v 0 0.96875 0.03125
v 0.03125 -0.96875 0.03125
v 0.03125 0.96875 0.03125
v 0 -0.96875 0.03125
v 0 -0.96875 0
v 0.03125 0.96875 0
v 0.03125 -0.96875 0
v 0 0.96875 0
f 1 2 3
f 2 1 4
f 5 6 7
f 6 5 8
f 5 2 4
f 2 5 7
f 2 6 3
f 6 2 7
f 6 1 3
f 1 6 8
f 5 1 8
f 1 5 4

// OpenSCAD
// file: ../colors.scad
// colors.scad
// Credit: David Powell, OpenSCAN Forum



//group ABS_<colorname>
//	discription  common 3d printer ABS filament colors
// actual colours may need some tweaking

ABS_Nature =[0.8,0.8,0.8,0.8];
ABS_White =[0.9,0.9,0.9,1];
ABS_Black =[0.1,0.1,0.1,1];
ABS_Red = [0.7,0,0,1];
ABS_Green = [0,0.7,0,1];
ABS_Blue = [0,0,0.7,1];
ABS_Orange =[0.8,0.4,0,1];
ABS_Purple =[0.7,0,0.7,1];
ABS_Brown =[0.6,0.2,0.2,1];
ABS_Glow_Blue =[0,0,.99,1];
ABS_Flurescence_Green =[0,1,0,1];
ABS_Flurescence_Yellow = [0.9,0.9,0,1];

//group PLA_<colorname>
//	discription  common 3d printer PLA filament colors
// actual colours may need some tweaking

PLA_Nature =[0.8,0.8,0.8,0.8];
PLA_White =[0.9,0.9,0.9,1];
PLA_Black =[0.1,0.1,0.1,1];
PLA_Red = [0.7,0,0,1];
PLA_Green = [0,0.7,0,1];
PLA_Blue = [0,0,0.7,1];
PLA_Orange =[0.8,0.4,0,1];
PLA_Purple =[0.7,0,0.7,1];
PLA_Brown =[0.6,0.2,0.2,1];
PLA_Glow_Blue =[0,0,.99,1];
PLA_Flurescence_Green =[0,1,0,1];
PLA_Flurescence_Yellow = [0.9,0.9,0,1];

//group ANODIZED_<colorname>
//	discription  common aluminium anodized colors
// these don't seem to follow normal color tables as the process
// produces a color change difference to the named color
// dew to base metal
// actual colours may need some tweaking

ANODIZED_Red =[0.7,0,0,1];
ANODIZED_Gold =[0.8,0.8,0.0,1];
ANODIZED_Black =[0.1,0.1,0.1,1];
ANODIZED_Blue =[0,0,0.7,1];
ANODIZED_Green =[0,0.5,0,1];
ANODIZED_Gray =[0.4,0.4,0.4,1];
ANODIZED_Dark_Blue =[0,0.2,0.6,1];
ANODIZED_Lime_Green =[0,0.8,0,1];
ANODIZED_Purple =[0.5,0,0.7,1];		//more blue than purple
ANODIZED_Light_Blue =[0.4,0.4,1,1];
ANODIZED_Pink =[0.7,0,0.7,1];		//more purlpe than pink
ANODIZED_Orange =[0.9,0.5,0,1];
ANODIZED_Scandia_Gold =[0.9,0.6,0.3,1];
ANODIZED_Copper =[0.7,0.5,0,1];		//more brown than copper
ANODIZED_Clear =[0.7,0.7,0.9,1];	//natural aluminium color
ANODIZED_Light_Bronze =[0.4,0.4,0.3,1]; //more silver than bronze
ANODIZED_Gold_Nickel =[0.8,0.8,0.6,1];
ANODIZED_Brush_Nickel =[0.8,0.8,0.7,1];

//group METAL_<typename>
//	discription common metal colors
// colors need tweaking

METAL_Aluminium = [0.7,0.7,0.8,1];
METAL_Brass = [0.88,0.78,0.5,1];
METAL_Copper = [0.9,0.6,0.5,1];
METAL_Steel = [0.9,0.9,0.8,1];
METAL_Stainless = [0.8,0.8,0.7,1];
METAL_Titanium = [0.7,0.7,0.6,1];
METAL_Bronze = [0.9,0.4,0.4,1];
METAL_Gold = [0.9,0.9,0.0,1];
METAL_Silver = [0.8,0.8,0.8,1];
METAL_Iron = [0.6,0.6,0.6,1];

// group WOOD_<typename>
//	discription common wood colors
// probabaly wrong

WOOD_Oak = [0.4,0.2,0.2,1];
WOOD_Birch = [0.8,0.8,0.4,1];
WOOD_Red = [0.7,0.3,0.3,1];
WOOD_pine = [0.8,0.8,0.4,1];
WOOD_Beach = [0.8,0.6,0.3,1];
WOOD_Spruce = [0.8,0.8,0.7,1];
WOOD_Balsa = [0.95,0.86,0.73];

// group GLASS_<color>
//	discription common glass colors
// needs tweaking

GLASS_Clear = [0.8,0.8,0.8,0.2];
GLASS_Red = [0.8,0,0,0.4];
GLASS_Green = [0,0.8,0,.4];
GLASS_Blue = [0,0,0.8,.4];
GLASS_Brown = [0.5,0.3,0.1,.4];

CONCRETE = [210/255, 209/255, 205/255];
// file: MMlib/square_spar.scad
//####################################
// square_spar.scad
// (c) 2021 by Roie R. Black
//====================================


module square_spar(length=6,size=1/16) {
  translate([size/2, 0, size/2])
    cube([size,length,size], center=true);
}

square_spar(6,1/16);
// file: ../fin_data.scad
//#####################################
// fin-data.scad
// (c) 2021 by Roie R. Black
//=====================================
include <colors.scad>

fin_span = 2;
fin_chord = 4;
fin_radius = 1.5;
spar_size = 1/32;
fin_color = WOOD_Balsa;

//-------------------------------------
// calculated values

fin_le_length = fin_span - fin_radius - spar_size;
fin_te_length = fin_span -2*spar_size;
// main file
//#####################################
// te.scad = wing center section
// (c) 2021 by Roie R. Black
//=====================================
include <../fin_data.scad>
use <MMlib/square_spar.scad>

module trailing_edge() {
		square_spar(fin_te_length,spar_size);
}

//====================================
// display this shape
trailing_edge();
